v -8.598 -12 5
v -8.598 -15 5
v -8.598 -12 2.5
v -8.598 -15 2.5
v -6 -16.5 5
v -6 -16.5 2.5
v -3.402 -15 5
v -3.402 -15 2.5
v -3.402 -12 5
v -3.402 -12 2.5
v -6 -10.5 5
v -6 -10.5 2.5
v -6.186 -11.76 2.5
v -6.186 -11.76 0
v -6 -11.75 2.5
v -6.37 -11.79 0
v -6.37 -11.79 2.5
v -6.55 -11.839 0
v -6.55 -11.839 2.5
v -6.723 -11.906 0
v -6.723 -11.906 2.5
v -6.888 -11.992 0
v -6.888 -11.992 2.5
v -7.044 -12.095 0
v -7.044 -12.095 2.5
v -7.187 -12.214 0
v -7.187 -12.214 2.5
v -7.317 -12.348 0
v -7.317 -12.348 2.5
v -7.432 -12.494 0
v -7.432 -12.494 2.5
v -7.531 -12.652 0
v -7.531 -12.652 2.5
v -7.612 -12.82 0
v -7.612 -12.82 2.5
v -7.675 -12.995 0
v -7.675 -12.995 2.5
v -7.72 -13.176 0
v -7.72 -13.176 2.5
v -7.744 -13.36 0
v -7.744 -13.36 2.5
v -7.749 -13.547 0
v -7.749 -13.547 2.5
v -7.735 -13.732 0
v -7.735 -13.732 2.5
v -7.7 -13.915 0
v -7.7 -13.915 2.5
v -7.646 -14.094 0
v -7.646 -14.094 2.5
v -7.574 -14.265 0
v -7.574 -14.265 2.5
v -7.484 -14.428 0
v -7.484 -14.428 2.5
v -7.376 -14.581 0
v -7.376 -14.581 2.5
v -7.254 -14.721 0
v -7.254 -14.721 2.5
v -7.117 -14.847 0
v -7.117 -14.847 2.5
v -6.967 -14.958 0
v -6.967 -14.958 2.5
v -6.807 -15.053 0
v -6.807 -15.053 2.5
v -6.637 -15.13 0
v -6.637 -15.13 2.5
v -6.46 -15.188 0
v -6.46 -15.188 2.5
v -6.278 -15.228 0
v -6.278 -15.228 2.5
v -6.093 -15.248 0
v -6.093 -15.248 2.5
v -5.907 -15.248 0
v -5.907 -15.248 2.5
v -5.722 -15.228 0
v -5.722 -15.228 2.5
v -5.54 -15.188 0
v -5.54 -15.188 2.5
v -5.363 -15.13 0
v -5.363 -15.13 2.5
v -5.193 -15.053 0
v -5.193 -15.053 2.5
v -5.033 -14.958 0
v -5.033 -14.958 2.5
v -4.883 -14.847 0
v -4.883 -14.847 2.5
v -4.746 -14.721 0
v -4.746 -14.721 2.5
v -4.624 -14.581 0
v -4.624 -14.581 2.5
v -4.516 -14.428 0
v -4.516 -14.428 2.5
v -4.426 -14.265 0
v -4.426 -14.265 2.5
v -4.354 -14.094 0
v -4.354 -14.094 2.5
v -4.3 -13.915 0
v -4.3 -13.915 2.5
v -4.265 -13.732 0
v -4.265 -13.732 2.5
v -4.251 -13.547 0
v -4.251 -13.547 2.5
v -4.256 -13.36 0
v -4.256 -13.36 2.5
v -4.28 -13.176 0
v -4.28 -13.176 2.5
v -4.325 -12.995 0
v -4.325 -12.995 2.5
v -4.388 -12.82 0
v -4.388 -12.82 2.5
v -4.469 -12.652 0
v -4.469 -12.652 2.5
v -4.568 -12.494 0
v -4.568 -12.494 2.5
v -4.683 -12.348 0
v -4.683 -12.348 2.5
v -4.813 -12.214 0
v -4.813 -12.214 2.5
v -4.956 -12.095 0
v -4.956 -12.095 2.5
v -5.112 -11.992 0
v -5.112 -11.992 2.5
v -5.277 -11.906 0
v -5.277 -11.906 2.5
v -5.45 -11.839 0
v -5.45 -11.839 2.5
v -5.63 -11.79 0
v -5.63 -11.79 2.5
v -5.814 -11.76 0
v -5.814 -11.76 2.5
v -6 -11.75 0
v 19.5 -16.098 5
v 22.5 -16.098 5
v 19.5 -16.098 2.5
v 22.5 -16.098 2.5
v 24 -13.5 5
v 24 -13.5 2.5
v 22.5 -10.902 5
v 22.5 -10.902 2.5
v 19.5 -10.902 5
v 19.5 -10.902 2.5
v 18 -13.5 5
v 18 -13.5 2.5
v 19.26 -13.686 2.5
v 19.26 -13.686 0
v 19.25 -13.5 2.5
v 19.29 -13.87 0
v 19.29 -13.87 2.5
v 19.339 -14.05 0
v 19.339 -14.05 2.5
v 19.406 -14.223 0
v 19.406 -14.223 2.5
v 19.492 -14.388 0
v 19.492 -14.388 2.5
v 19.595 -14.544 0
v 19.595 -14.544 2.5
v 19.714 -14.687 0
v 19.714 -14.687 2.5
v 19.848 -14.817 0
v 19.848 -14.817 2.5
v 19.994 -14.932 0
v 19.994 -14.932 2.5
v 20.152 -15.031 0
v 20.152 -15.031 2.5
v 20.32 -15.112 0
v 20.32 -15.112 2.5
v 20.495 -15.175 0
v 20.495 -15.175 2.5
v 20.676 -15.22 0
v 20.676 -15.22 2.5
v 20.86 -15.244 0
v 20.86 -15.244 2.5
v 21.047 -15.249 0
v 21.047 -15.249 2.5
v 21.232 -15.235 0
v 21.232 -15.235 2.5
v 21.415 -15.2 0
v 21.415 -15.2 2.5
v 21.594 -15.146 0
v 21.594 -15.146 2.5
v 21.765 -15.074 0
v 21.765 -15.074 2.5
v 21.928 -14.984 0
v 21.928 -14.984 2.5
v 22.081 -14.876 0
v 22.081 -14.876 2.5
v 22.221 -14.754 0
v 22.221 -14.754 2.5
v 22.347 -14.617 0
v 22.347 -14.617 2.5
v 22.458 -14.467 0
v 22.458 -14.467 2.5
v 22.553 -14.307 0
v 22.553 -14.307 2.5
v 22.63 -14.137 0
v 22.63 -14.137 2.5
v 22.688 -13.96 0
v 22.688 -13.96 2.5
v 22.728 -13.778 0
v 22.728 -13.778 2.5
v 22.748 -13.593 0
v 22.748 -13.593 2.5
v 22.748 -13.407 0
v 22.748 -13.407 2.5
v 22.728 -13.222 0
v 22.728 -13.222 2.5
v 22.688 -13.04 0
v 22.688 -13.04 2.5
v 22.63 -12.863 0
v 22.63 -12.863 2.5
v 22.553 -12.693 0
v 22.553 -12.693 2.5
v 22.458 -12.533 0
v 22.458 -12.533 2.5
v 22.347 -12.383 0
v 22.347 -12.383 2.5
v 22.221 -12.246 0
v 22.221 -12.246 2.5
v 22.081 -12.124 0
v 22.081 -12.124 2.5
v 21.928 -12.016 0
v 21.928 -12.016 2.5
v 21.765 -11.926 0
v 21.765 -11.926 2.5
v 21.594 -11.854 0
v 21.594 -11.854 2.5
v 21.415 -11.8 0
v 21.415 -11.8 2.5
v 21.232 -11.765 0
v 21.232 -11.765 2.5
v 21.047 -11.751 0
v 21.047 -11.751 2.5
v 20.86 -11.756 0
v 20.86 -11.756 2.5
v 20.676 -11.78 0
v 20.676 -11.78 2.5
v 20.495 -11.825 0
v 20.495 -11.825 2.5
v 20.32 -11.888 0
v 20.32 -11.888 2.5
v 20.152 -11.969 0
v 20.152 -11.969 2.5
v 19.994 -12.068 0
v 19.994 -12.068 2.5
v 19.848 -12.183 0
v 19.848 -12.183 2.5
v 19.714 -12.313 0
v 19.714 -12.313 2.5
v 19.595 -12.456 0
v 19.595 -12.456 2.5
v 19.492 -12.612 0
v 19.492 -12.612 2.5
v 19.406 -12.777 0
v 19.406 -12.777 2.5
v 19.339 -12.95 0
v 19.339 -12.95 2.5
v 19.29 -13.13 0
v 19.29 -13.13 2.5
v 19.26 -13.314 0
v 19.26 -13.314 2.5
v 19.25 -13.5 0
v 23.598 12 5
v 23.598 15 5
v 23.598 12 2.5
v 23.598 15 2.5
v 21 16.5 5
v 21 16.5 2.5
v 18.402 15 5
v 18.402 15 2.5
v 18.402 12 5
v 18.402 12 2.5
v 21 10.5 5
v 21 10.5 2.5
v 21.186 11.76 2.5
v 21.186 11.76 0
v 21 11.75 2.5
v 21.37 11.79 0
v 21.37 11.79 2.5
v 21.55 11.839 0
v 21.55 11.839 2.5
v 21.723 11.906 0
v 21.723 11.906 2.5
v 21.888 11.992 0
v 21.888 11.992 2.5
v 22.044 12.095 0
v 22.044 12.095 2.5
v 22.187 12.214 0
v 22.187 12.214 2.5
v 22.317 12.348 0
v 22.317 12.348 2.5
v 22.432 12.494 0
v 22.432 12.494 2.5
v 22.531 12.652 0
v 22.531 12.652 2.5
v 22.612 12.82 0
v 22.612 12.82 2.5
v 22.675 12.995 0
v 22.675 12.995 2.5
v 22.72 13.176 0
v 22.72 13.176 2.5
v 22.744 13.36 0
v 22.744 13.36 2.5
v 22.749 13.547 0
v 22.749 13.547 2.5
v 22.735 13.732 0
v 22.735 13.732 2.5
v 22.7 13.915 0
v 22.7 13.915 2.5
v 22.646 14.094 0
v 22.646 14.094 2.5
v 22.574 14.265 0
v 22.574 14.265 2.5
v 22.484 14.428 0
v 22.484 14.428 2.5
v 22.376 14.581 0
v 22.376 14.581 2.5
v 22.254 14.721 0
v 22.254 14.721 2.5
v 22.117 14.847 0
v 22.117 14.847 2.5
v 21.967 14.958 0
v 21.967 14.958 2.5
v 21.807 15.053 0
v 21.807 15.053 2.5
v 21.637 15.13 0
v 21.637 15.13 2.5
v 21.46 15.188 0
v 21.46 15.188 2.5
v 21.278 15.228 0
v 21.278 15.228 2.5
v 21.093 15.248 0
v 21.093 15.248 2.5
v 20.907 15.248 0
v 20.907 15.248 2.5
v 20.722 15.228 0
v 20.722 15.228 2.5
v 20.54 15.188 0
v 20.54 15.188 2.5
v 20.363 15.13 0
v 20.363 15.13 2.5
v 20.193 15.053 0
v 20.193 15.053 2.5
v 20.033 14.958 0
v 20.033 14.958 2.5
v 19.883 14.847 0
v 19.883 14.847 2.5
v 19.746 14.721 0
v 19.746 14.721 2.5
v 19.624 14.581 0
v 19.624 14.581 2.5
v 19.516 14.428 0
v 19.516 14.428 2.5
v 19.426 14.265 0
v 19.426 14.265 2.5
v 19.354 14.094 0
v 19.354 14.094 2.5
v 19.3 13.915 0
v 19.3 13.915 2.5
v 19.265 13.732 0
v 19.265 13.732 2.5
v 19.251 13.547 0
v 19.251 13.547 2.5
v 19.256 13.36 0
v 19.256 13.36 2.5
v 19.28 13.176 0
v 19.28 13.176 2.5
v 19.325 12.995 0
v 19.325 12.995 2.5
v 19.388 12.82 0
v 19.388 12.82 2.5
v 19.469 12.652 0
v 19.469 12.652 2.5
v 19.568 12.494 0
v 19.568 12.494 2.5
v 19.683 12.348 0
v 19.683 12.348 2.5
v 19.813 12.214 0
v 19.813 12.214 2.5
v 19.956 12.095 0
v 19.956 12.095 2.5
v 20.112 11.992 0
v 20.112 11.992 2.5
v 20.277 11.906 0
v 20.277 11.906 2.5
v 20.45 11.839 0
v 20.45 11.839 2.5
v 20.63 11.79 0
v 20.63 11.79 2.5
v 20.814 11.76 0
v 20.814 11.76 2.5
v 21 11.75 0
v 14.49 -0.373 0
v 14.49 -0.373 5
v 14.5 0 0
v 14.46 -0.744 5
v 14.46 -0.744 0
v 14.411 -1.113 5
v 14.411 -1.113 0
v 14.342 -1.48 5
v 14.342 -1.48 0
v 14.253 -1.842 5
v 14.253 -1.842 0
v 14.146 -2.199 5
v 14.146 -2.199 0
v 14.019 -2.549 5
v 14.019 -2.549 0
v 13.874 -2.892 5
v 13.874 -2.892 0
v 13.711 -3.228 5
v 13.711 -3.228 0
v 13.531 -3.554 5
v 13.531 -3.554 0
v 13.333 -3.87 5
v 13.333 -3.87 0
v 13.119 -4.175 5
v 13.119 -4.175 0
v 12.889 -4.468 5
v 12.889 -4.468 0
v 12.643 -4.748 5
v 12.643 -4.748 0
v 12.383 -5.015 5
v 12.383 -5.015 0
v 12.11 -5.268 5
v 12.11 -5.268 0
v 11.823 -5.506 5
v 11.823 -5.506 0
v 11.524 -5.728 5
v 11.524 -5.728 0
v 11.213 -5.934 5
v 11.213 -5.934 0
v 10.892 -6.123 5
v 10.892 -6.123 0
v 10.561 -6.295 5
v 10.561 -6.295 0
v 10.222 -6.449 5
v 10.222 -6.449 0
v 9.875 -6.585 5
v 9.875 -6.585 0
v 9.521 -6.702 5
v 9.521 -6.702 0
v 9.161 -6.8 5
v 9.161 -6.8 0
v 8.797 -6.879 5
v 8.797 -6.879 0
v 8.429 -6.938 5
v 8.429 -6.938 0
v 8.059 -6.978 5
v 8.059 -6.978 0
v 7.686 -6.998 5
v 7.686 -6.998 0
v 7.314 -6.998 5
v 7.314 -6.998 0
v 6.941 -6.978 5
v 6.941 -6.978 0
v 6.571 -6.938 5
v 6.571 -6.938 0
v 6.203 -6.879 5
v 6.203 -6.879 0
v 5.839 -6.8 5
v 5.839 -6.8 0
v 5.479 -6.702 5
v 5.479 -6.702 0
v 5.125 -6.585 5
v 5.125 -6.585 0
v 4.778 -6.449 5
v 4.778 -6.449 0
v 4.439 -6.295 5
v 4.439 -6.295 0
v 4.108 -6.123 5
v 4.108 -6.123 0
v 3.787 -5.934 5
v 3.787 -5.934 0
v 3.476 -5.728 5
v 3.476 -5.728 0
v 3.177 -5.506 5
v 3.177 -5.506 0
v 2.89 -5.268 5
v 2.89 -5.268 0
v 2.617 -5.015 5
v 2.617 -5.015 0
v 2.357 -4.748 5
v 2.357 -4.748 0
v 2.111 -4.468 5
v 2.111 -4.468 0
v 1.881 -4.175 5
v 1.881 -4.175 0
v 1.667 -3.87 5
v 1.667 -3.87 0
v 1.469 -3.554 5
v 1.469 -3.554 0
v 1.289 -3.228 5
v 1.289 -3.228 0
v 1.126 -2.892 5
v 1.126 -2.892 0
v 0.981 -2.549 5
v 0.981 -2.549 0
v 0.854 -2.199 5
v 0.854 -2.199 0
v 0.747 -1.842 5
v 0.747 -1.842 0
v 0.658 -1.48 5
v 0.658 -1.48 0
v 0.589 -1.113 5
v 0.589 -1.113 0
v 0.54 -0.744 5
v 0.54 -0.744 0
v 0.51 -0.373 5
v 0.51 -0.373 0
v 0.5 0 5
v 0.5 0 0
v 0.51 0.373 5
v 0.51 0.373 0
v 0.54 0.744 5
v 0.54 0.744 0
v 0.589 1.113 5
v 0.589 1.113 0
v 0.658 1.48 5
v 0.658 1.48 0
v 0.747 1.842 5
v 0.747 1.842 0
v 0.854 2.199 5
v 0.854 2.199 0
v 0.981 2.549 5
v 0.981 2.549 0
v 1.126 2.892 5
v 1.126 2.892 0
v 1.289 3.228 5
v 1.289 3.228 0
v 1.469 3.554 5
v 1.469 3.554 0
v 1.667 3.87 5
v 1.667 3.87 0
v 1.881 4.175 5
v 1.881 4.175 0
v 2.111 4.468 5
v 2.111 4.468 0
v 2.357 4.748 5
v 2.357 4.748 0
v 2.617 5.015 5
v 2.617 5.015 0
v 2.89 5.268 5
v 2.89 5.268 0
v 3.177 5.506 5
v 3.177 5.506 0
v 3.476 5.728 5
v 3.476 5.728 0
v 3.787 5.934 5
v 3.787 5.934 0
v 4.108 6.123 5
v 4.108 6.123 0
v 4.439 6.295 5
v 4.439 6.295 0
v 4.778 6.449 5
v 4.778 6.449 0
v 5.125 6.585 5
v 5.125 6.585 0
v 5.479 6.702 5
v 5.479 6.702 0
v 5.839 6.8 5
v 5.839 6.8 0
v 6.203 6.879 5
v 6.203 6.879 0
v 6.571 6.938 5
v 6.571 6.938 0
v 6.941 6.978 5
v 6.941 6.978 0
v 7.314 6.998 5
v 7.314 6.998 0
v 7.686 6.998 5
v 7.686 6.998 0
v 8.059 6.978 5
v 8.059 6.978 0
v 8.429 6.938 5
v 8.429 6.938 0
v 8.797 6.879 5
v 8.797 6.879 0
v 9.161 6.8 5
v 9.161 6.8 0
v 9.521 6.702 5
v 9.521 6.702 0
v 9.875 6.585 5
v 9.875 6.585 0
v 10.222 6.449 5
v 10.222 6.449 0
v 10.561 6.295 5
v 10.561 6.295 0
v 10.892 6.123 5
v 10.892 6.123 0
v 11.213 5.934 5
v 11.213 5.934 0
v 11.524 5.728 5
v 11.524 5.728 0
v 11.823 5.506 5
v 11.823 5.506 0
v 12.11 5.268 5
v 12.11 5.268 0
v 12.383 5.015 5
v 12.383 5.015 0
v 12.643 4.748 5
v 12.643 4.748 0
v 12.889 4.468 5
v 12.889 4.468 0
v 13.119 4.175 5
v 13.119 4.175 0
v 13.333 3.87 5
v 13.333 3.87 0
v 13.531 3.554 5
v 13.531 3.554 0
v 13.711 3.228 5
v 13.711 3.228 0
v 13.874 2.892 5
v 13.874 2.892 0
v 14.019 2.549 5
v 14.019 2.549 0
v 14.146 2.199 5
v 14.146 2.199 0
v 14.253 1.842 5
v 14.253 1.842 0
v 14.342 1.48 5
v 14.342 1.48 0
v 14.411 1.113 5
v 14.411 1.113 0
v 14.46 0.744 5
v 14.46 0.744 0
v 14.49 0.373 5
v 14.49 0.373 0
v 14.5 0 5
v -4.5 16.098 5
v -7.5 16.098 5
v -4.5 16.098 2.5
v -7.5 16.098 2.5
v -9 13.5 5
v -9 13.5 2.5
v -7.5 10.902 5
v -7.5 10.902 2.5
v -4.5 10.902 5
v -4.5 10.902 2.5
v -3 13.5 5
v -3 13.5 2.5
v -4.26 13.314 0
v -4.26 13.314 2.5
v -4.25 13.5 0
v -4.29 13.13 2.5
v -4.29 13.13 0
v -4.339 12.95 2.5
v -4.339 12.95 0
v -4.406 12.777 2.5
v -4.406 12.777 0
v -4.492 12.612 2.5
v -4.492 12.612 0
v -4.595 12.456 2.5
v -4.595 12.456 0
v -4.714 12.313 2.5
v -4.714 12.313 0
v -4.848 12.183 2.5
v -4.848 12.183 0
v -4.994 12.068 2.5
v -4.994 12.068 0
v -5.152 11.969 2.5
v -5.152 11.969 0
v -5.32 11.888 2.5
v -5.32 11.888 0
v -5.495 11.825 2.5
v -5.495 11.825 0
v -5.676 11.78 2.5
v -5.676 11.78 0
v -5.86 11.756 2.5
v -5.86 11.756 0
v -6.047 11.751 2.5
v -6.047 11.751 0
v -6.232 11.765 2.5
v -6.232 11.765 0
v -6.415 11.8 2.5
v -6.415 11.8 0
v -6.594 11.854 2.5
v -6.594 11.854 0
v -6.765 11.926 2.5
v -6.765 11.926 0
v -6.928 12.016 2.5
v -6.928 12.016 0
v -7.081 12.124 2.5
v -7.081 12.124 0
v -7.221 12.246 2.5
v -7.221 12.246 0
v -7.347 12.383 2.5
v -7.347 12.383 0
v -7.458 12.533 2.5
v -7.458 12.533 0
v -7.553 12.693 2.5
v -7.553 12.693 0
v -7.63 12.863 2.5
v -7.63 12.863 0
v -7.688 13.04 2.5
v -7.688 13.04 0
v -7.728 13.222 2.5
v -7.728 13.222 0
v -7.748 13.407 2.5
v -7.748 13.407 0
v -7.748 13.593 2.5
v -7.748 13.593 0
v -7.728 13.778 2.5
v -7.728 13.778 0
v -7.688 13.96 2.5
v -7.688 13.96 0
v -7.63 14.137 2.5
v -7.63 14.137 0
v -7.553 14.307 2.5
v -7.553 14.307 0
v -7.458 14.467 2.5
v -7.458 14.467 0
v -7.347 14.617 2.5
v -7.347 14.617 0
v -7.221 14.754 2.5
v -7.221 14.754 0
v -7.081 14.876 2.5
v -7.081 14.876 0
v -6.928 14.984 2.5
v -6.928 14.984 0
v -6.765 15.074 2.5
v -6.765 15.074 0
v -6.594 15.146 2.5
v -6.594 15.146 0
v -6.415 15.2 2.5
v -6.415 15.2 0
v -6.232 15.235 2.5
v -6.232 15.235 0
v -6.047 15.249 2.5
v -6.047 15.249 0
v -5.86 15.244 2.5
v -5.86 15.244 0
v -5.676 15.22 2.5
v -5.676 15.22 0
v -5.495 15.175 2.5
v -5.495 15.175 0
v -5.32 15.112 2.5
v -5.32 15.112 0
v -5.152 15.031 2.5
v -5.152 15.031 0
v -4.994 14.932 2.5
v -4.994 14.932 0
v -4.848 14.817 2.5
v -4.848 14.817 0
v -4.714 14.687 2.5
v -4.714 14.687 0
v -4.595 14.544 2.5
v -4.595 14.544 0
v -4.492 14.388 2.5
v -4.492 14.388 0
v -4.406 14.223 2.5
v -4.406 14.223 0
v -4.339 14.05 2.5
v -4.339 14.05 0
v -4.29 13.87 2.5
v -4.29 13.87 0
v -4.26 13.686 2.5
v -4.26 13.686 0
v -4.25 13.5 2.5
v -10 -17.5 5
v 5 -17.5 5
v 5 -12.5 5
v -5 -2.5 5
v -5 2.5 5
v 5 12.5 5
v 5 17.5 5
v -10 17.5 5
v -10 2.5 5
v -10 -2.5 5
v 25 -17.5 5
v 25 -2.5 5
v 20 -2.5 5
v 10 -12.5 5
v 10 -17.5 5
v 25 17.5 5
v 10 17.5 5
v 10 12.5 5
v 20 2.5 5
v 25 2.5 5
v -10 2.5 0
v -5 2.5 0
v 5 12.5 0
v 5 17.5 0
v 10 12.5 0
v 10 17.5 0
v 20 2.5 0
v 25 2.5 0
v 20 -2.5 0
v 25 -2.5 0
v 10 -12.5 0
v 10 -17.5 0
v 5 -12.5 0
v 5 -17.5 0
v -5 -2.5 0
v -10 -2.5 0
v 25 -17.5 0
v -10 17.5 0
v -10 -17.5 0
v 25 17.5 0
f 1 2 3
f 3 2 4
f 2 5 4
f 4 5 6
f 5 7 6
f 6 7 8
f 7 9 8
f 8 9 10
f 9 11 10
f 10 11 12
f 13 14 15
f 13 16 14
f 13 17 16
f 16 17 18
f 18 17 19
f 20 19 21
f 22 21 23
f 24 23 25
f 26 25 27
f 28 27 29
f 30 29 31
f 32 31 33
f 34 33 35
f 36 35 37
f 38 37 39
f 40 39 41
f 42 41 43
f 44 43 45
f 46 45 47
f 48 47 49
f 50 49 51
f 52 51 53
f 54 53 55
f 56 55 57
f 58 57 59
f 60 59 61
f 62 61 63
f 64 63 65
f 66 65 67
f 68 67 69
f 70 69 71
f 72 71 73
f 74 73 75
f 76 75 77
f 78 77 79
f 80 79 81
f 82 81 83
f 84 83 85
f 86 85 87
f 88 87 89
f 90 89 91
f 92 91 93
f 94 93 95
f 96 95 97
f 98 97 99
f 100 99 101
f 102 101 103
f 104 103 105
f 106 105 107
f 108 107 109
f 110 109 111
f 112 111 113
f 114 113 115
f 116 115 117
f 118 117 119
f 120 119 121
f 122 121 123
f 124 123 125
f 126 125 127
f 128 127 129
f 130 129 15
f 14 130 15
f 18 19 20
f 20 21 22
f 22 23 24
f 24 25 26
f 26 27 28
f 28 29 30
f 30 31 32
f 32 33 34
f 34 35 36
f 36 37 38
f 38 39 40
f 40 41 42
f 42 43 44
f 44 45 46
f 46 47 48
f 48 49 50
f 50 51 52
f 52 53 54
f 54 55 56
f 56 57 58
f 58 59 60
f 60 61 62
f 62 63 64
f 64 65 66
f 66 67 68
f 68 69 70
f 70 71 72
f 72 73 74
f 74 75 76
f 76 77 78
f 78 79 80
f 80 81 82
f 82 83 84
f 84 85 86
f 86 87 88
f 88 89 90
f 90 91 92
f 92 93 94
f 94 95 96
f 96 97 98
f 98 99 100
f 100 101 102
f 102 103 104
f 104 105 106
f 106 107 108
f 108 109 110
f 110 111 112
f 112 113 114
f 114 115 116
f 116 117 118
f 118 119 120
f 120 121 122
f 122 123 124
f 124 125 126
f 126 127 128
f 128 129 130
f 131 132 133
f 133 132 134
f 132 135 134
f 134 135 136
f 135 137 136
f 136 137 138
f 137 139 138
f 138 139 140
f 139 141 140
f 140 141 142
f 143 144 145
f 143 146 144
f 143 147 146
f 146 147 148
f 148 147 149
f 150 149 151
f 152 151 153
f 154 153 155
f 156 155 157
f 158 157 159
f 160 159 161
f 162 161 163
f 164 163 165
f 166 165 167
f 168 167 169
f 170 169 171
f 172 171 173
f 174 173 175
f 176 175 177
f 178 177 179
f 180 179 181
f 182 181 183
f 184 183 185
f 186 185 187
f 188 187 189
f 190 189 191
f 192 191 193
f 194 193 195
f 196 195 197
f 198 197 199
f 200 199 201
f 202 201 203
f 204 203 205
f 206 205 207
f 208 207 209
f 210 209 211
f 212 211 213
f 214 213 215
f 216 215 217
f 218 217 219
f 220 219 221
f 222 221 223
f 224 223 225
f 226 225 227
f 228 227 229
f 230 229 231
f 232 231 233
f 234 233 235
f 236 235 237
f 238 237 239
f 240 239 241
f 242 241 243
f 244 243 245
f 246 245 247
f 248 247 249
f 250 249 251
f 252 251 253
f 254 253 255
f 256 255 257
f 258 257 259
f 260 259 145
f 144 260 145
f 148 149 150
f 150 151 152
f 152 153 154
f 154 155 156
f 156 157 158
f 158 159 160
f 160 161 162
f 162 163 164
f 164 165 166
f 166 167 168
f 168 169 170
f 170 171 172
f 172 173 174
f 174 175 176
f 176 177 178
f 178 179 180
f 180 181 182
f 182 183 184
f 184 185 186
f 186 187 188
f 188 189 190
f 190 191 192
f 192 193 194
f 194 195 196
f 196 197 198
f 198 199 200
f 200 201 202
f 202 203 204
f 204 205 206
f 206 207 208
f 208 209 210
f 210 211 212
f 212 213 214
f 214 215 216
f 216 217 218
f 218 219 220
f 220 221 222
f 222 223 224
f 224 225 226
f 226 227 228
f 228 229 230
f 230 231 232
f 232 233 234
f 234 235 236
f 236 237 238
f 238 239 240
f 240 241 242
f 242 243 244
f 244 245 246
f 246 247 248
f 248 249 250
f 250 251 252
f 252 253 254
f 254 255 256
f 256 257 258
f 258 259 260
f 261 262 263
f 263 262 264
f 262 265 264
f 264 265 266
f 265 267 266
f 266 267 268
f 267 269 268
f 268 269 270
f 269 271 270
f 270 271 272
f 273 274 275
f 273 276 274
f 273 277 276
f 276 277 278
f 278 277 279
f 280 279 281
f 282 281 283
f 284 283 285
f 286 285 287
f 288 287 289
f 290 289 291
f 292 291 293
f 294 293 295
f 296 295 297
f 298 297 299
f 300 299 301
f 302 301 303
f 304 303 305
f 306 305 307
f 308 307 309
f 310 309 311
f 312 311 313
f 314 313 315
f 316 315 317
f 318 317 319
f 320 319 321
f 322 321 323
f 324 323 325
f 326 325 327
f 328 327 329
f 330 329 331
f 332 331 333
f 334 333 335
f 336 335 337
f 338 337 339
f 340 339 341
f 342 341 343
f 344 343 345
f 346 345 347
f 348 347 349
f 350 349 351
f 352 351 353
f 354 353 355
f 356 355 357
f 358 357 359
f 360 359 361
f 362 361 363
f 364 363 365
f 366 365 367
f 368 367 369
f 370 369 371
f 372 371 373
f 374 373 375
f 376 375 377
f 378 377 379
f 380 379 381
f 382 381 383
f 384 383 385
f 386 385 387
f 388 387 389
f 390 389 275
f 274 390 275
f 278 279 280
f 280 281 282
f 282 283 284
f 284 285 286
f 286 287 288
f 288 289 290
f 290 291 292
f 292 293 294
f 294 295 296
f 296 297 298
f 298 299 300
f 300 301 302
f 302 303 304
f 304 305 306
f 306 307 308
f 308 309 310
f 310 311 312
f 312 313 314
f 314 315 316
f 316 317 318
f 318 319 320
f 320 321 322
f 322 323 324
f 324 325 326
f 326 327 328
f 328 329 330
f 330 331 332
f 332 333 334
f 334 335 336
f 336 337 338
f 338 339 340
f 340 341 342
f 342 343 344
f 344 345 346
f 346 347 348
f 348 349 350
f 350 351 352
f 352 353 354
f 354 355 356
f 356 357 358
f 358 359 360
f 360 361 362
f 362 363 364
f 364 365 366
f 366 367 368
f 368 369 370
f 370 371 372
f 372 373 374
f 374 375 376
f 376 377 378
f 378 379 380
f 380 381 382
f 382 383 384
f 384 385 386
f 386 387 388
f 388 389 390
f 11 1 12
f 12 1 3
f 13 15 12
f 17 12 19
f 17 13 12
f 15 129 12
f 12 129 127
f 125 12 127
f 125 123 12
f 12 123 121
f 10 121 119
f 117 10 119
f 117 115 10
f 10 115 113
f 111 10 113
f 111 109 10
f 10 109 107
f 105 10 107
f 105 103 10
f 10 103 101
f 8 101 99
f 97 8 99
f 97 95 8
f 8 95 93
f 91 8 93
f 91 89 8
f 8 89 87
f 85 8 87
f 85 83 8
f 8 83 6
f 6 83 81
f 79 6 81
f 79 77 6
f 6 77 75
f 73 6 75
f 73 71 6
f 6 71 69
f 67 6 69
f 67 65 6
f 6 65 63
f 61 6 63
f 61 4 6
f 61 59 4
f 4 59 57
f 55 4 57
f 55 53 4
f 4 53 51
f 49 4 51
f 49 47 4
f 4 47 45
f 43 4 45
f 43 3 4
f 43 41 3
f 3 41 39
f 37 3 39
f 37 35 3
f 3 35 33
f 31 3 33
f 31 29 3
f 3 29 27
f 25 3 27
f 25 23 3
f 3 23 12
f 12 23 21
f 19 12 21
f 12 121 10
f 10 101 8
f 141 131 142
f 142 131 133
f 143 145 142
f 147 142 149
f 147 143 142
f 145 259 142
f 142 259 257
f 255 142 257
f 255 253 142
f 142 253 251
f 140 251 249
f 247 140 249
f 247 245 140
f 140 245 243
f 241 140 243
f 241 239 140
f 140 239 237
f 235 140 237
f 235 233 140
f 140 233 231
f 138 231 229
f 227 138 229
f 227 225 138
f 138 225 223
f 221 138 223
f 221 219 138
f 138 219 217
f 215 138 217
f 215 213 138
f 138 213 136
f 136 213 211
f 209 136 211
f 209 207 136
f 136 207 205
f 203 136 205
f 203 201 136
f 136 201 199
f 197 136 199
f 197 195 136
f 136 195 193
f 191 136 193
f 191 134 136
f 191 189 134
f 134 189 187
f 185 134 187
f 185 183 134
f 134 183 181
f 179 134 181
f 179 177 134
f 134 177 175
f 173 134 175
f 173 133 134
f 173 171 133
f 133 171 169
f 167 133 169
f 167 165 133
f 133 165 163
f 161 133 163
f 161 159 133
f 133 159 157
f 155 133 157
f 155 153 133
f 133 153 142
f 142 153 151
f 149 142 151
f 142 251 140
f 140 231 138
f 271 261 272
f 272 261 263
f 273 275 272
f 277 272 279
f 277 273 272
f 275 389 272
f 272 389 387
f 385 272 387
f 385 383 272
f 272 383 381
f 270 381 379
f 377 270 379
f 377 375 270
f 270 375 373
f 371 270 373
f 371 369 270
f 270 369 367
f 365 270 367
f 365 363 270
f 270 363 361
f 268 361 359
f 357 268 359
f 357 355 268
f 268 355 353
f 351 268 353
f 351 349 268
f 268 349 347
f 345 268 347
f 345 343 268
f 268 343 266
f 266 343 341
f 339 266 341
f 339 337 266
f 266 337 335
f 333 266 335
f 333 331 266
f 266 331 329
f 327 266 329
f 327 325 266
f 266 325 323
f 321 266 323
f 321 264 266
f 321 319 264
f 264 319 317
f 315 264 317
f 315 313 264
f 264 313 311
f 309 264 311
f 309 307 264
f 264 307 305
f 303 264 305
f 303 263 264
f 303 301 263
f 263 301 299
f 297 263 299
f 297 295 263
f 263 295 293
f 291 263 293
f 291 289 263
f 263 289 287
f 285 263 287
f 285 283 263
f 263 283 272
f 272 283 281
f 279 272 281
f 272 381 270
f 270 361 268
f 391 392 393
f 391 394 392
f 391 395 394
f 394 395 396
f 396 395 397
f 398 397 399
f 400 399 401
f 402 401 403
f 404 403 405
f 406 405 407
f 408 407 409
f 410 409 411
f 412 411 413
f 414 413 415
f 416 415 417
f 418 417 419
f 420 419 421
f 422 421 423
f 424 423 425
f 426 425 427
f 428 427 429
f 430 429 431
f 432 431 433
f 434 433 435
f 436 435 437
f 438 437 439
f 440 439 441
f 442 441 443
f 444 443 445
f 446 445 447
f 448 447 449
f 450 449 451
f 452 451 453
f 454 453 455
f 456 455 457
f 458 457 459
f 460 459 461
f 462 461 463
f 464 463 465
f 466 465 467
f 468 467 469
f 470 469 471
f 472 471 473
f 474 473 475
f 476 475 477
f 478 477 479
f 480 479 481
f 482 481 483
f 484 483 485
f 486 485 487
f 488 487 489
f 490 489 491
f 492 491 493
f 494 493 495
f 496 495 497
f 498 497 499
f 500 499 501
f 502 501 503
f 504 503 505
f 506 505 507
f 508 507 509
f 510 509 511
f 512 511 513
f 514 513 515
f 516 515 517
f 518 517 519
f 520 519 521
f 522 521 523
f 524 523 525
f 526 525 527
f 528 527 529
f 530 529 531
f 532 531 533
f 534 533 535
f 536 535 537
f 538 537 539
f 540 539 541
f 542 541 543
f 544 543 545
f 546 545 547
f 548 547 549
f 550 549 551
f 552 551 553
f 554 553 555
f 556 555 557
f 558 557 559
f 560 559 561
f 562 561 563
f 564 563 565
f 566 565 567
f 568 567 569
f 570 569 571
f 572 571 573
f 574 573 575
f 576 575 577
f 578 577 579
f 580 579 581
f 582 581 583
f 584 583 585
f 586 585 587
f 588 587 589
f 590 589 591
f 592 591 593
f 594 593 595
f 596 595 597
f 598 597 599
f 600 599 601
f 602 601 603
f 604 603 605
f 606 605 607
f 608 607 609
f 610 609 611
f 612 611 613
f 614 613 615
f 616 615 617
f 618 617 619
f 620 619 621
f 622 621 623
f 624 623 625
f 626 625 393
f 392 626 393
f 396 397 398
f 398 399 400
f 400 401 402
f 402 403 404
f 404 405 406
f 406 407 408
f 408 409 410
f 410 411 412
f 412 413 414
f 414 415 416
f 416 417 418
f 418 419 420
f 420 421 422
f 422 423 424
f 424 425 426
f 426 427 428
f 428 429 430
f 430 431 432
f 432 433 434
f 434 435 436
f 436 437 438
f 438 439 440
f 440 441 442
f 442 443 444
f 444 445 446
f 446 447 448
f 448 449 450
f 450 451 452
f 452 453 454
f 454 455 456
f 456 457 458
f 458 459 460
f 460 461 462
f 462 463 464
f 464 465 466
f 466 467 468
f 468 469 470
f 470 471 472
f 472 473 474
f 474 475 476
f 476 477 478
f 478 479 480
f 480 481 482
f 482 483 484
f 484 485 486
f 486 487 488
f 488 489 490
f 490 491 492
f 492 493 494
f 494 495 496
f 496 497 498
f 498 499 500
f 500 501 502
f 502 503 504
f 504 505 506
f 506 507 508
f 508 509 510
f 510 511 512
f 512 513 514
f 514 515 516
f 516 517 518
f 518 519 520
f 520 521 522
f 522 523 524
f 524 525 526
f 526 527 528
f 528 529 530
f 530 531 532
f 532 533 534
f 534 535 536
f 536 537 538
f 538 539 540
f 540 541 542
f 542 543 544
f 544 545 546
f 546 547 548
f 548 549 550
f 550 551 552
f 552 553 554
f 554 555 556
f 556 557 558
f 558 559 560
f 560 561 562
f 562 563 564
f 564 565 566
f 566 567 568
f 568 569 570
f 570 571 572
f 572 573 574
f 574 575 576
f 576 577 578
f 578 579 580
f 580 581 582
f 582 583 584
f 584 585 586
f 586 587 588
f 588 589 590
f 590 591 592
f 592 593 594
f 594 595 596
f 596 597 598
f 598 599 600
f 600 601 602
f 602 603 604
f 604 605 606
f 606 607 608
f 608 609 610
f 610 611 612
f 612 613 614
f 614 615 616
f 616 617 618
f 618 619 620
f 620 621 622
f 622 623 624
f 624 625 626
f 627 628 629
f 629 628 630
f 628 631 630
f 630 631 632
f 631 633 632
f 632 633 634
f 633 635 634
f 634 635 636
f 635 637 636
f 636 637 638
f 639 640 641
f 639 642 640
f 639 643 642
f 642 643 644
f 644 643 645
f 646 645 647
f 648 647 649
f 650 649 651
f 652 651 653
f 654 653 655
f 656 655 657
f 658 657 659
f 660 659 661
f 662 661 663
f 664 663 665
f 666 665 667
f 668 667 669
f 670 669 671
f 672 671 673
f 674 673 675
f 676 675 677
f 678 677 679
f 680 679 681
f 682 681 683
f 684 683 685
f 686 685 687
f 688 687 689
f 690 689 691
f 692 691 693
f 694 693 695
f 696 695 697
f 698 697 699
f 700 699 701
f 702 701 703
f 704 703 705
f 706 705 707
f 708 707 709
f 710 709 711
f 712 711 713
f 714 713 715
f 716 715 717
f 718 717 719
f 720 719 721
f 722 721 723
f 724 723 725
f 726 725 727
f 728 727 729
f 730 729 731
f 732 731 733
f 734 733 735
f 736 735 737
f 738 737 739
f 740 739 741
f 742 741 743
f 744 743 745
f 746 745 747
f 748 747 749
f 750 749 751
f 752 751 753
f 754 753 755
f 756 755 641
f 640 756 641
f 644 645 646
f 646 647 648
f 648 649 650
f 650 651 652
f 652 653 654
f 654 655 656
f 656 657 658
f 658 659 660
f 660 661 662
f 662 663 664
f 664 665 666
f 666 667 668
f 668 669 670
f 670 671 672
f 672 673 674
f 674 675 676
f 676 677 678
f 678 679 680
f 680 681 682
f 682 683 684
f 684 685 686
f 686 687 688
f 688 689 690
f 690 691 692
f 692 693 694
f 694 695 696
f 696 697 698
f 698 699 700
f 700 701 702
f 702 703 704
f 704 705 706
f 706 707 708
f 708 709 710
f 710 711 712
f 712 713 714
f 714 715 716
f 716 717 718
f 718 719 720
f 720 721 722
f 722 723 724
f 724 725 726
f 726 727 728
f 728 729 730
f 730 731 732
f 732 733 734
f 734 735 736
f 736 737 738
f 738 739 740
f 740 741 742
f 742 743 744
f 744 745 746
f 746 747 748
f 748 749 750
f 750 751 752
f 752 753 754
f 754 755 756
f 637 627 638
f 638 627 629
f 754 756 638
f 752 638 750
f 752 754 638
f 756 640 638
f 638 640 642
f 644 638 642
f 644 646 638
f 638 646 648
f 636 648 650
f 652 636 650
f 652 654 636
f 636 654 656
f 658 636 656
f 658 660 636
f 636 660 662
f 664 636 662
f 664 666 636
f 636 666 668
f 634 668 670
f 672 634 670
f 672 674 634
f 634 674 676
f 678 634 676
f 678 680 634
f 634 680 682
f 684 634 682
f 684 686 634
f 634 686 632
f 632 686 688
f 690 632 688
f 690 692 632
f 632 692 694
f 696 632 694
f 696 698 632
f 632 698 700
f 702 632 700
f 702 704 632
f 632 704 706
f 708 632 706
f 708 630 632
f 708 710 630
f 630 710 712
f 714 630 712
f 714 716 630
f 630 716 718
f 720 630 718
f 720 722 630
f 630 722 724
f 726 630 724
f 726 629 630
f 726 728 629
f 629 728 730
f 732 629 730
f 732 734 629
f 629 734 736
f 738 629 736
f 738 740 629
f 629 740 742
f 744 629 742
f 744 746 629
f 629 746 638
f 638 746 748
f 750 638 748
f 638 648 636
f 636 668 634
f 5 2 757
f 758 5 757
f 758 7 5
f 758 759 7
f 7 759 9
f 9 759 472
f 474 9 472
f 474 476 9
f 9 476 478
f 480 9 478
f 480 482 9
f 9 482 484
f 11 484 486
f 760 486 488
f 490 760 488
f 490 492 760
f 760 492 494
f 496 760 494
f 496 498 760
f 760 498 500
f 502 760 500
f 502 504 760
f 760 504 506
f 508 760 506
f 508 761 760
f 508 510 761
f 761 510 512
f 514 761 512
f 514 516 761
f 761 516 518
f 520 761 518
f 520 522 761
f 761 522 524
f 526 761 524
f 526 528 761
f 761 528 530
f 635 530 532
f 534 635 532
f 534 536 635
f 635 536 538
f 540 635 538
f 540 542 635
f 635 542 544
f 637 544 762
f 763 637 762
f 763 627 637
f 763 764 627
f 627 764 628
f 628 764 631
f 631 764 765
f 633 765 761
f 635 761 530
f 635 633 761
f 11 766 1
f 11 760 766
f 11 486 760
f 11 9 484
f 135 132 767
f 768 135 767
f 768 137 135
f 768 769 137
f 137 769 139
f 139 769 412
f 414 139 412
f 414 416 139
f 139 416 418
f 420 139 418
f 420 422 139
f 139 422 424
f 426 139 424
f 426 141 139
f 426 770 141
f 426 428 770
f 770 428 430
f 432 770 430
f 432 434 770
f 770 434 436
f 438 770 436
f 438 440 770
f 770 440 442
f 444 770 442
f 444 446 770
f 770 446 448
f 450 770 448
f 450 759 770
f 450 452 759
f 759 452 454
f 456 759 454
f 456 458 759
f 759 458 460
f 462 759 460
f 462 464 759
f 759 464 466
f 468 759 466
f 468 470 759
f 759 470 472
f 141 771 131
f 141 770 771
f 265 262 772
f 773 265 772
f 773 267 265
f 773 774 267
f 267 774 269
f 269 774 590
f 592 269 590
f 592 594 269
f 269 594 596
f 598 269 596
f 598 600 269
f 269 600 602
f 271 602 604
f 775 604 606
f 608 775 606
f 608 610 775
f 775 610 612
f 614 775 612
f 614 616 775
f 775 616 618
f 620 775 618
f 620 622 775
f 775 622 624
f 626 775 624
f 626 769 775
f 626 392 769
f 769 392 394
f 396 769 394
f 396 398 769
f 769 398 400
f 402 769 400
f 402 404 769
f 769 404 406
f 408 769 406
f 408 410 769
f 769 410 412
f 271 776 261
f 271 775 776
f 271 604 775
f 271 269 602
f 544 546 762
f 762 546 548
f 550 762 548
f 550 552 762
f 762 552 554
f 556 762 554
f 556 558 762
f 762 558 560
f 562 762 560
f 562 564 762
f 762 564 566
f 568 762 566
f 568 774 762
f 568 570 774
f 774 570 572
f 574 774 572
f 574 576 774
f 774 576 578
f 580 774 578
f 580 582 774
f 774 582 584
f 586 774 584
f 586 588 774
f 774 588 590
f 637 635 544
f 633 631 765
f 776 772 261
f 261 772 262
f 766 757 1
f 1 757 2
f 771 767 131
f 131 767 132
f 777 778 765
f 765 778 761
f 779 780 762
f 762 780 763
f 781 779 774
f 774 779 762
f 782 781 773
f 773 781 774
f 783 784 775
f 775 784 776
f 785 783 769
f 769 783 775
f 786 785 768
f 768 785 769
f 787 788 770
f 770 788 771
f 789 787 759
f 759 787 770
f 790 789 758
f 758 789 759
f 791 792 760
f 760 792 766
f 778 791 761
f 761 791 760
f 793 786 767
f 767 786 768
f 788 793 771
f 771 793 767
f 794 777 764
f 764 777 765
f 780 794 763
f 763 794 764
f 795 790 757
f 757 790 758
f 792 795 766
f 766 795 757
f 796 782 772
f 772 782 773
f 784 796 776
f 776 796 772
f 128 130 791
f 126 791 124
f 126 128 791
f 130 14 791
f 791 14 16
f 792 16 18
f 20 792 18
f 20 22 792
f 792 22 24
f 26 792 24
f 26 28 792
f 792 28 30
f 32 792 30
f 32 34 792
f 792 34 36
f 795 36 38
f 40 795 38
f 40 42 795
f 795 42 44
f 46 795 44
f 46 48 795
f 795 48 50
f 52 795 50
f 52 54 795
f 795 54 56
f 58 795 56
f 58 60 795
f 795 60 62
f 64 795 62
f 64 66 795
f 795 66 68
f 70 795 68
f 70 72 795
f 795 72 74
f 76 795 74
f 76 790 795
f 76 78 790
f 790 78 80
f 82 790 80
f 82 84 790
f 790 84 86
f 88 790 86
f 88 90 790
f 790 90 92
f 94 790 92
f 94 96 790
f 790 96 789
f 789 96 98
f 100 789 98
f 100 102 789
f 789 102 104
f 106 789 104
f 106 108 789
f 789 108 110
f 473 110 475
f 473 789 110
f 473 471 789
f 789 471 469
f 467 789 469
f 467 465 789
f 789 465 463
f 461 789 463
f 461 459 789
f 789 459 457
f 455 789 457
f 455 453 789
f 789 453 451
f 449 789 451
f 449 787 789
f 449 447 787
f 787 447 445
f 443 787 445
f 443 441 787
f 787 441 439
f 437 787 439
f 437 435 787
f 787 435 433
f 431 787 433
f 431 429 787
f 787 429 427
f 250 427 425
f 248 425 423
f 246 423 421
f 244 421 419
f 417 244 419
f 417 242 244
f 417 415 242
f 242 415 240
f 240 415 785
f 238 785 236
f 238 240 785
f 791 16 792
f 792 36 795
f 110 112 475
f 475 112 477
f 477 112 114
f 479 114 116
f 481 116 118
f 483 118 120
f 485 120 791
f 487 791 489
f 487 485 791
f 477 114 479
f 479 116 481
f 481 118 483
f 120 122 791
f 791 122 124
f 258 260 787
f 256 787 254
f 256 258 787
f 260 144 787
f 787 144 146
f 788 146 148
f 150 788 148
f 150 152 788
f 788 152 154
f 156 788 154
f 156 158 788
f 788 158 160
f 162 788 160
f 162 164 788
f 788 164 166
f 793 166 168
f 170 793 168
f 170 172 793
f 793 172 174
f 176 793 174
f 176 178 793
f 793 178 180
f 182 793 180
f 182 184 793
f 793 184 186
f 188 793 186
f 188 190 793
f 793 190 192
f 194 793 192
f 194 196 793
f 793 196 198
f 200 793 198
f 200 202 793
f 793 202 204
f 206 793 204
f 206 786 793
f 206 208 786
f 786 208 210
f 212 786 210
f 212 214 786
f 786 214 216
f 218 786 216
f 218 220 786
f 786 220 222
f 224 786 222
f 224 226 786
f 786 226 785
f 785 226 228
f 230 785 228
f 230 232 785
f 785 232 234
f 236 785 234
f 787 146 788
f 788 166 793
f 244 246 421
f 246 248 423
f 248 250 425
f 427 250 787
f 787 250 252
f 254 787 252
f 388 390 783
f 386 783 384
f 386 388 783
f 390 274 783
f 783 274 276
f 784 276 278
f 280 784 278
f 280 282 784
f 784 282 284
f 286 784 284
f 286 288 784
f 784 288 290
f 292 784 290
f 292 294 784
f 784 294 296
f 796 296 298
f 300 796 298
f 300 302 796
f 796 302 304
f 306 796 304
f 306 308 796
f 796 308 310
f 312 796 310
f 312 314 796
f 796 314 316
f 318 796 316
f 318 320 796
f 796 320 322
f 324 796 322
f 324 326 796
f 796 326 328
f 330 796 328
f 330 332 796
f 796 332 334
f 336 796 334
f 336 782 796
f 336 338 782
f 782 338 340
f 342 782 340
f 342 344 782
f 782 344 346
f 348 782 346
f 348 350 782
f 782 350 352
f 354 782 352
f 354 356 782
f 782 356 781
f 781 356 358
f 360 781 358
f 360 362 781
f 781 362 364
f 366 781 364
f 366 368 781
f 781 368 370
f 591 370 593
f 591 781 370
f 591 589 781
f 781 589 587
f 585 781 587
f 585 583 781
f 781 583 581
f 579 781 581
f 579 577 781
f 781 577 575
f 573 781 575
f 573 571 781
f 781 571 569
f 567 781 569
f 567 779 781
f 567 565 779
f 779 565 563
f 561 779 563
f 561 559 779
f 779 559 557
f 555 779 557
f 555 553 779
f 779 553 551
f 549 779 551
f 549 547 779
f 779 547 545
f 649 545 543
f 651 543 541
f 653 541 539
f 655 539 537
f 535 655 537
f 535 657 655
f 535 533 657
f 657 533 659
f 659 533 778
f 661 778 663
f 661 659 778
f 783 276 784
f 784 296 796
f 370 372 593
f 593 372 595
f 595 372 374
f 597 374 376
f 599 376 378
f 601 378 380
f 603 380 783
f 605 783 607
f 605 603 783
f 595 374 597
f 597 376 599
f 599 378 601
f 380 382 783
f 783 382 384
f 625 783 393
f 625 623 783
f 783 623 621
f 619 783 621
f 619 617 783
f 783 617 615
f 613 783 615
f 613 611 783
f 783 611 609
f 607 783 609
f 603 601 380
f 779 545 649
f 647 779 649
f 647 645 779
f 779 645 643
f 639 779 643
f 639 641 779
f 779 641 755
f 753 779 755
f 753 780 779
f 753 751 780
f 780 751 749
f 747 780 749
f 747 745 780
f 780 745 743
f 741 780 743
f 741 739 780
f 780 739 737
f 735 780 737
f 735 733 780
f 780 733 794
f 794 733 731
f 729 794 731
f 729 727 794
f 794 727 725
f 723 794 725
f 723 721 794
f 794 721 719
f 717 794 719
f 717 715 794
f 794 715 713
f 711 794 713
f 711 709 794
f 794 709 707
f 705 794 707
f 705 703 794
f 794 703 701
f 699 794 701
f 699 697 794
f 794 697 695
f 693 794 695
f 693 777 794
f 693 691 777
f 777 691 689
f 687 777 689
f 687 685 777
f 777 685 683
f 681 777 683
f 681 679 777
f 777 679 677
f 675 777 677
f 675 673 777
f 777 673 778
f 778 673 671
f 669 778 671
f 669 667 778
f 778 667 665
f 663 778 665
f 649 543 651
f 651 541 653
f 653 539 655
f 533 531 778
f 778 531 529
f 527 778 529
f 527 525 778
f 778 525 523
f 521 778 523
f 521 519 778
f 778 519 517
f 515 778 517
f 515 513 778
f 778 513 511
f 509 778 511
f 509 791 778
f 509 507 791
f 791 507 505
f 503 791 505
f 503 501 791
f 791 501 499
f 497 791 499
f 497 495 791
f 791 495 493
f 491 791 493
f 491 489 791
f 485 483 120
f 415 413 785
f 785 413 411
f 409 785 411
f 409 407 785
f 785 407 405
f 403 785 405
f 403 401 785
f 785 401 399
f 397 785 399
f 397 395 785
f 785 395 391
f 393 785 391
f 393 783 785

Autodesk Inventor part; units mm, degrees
ref_plane "YZ Plane" through (0, 0, 0) normal (1, 0, 0) x (0, 1, 0)
ref_plane "XZ Plane" through (0, 0, 0) normal (0, 1, 0) x (-1, 0, 0)
ref_plane "XY Plane" through (0, 0, 0) normal (0, 0, 1) x (1, 0, 0)
sketch "Sketch1" plane through (0, 0, 0) normal (0, 0, 1) x (1, 0, 0)
  line L0 (0, 0) -> (-5, 0)
  line L1 (-5, 0) -> (-5, 2.5)
  line L2 (-5, 2.5) -> (-10, 2.5)
  line L3 (-10, 2.5) -> (-10, 7.5)
  line L4 (-10, 7.5) -> (-5, 7.5)
  line L5 (-5, 7.5) -> (-5, 12.5)
  line L6 (-5, 12.5) -> (0, 12.5)
  line L7 (-5, 0) -> (-5, -2.5)
  line L8 (-5, -2.5) -> (-10, -2.5)
  line L9 (-10, -2.5) -> (-10, -7.5)
  line L10 (-10, -7.5) -> (-5, -7.5)
  line L11 (-5, -7.5) -> (-5, -12.5)
  line L12 (-5, -12.5) -> (0, -12.5)
  line L13 (0, 12.5) -> (0, 17.5)
  line L14 (0, 17.5) -> (5, 17.5)
  line L15 (5, 17.5) -> (5, 12.5)
  line L16 (5, 12.5) -> (10, 12.5)
  line L17 (10, 12.5) -> (10, 17.5)
  line L18 (10, 17.5) -> (15, 17.5)
  line L19 (15, 17.5) -> (15, 12.5)
  line L20 (15, 12.5) -> (20, 12.5)
  line L21 (20, 12.5) -> (20, 7.5)
  line L22 (20, 7.5) -> (25, 7.5)
  line L23 (25, 7.5) -> (25, 2.5)
  line L24 (25, 2.5) -> (20, 2.5)
  line L25 (20, 2.5) -> (20, -2.5)
  line L26 (20, -2.5) -> (25, -2.5)
  line L27 (25, -2.5) -> (25, -7.5)
  line L28 (25, -7.5) -> (20, -7.5)
  line L29 (20, -7.5) -> (20, -12.5)
  line L30 (20, -12.5) -> (15, -12.5)
  line L31 (15, -12.5) -> (15, -17.5)
  line L32 (15, -17.5) -> (10, -17.5)
  line L33 (10, -17.5) -> (10, -12.5)
  line L34 (10, -12.5) -> (5, -12.5)
  line L35 (5, -12.5) -> (5, -17.5)
  line L36 (5, -17.5) -> (0, -17.5)
  line L37 (0, -17.5) -> (0, -12.5)
  line L38 (0, 17.5) -> (-10, 17.5)
  line L39 (-10, 17.5) -> (-10, 7.5)
  line L40 (15, 17.5) -> (25, 17.5)
  line L41 (25, 17.5) -> (25, 7.5)
  line L42 (25, -7.5) -> (25, -17.5)
  line L43 (25, -17.5) -> (15, -17.5)
  line L44 (0, -17.5) -> (-10, -17.5)
  line L45 (-10, -7.5) -> (-10, -17.5)
  dimension "d0" = 5
  dimension "d1" = 2.5
  dimension "d2" = 5
  dimension "d3" = 5
  dimension "d4" = 5
  dimension "d5" = 5
  dimension "d6" = 5
  dimension "d7" = 2.5
  dimension "d8" = 5
  dimension "d9" = 5
  dimension "d10" = 5
  dimension "d11" = 5
  dimension "d12" = 5
  dimension "d13" = 5
  dimension "d14" = 5
  dimension "d15" = 5
  dimension "d16" = 5
  dimension "d17" = 5
  dimension "d18" = 5
  dimension "d19" = 5
  dimension "d20" = 5
  dimension "d21" = 5
  dimension "d22" = 5
  dimension "d23" = 5
  dimension "d24" = 5
  dimension "d25" = 5
  dimension "d26" = 5
  dimension "d27" = 5
  dimension "d28" = 5
  dimension "d29" = 5
  dimension "d30" = 5
  dimension "d31" = 5
  dimension "d32" = 5
extrude "Extrusion1" add sketch "Sketch1" along normal blind 5
sketch "Sketch4" plane through (0, 0, 5) normal (0, 0, 1) x (1, 0, 0)
  line L0 (-10, 17.5) -> (-10, 13.5)
  line L1 (-10, 17.5) -> (-10, 2.5) projected
  line L2 (-10, 13.5) -> (-6, 13.5)
  circle A0 centre (-6, 13.5) radius 1.75
  point P0 (0, 0)
  dimension "d54" = 4
  dimension "d55" = 4
  dimension "d56" = 3.5
extrude "Extrusion4" cut sketch "Sketch4" against normal blind 10
sketch "Sketch5" plane through (0, 0, 5) normal (0, 0, 1) x (1, 0, 0)
  circle A0 centre (-6, 13.5) radius 1.75 projected
  line L0 (-6, 13.5) -> (-3, 13.5)
  line L1 (-3, 13.5) -> (-4.5, 16.0981)
  line L2 (-4.5, 16.0981) -> (-6, 13.5)
  point P0 (0, 0)
  dimension "d59" = 3
  dimension "d60" = 3
  dimension "d61" = 60
extrude "Extrusion5" cut sketch "Sketch5" against normal blind 2.5 contours L0 L2 A0 | A0 L2 L1 L0 picked at (-4.9952, 14.0801)
pattern_circular "Circular Pattern2" count 6 over 360 about axis through (-6, 13.5, 5) along (0, 0, -1) of "Extrusion5"
sketch "Sketch6" plane through (0, 0, 5) normal (0, 0, 1) x (1, 0, 0)
  line L0 (-5, -2.5) -> (-5, 2.5) projected
  line L1 (-5, 0) -> (20, 0)
  line L2 (20, 2.5) -> (20, -2.5) projected
  line L3 (5, 12.5) -> (10, 12.5) projected
  line L4 (7.5, 12.5) -> (7.5, 0)
  circle A0 centre (7.5, 0) radius 7
  point P0 (0, 0)
  dimension "d70" = 14
extrude "Extrusion6" cut sketch "Sketch6" against normal through all
pattern_circular "Circular Pattern4" count 4 over 360 about axis through (7.5, 0, 5) along (0, 0, -1) of "Extrusion5", "Circular Pattern2", "Extrusion4"
properties part number "crossCenter"
